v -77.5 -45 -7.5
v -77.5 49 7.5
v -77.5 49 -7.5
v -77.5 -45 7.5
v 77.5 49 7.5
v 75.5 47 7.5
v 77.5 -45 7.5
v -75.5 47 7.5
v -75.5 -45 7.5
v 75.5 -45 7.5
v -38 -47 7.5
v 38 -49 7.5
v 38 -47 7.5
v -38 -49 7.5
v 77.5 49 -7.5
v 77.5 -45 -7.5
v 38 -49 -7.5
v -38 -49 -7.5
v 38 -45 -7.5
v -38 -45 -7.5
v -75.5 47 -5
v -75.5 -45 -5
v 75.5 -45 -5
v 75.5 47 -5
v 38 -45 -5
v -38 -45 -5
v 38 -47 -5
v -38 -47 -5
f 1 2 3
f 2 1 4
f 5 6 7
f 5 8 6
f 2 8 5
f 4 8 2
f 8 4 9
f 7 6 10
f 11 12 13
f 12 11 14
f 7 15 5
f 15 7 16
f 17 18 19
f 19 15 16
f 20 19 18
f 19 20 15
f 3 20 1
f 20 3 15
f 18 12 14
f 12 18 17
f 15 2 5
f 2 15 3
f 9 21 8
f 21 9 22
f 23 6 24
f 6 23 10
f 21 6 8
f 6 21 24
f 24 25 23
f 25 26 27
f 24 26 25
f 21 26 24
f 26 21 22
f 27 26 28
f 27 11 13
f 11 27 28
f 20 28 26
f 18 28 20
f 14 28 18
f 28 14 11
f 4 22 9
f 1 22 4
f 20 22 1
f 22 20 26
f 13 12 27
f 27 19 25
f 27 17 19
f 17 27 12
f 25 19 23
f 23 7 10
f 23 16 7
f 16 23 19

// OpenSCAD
difference() {
cube([155,98,15],center=true);
    translate([0,0,2.5])cube([151,94,15],center=true);
    translate([-58,-49,0])cube([40,8,15],center=true);
    translate([58,-49,0])cube([40,8,15],center=true);
    
}
